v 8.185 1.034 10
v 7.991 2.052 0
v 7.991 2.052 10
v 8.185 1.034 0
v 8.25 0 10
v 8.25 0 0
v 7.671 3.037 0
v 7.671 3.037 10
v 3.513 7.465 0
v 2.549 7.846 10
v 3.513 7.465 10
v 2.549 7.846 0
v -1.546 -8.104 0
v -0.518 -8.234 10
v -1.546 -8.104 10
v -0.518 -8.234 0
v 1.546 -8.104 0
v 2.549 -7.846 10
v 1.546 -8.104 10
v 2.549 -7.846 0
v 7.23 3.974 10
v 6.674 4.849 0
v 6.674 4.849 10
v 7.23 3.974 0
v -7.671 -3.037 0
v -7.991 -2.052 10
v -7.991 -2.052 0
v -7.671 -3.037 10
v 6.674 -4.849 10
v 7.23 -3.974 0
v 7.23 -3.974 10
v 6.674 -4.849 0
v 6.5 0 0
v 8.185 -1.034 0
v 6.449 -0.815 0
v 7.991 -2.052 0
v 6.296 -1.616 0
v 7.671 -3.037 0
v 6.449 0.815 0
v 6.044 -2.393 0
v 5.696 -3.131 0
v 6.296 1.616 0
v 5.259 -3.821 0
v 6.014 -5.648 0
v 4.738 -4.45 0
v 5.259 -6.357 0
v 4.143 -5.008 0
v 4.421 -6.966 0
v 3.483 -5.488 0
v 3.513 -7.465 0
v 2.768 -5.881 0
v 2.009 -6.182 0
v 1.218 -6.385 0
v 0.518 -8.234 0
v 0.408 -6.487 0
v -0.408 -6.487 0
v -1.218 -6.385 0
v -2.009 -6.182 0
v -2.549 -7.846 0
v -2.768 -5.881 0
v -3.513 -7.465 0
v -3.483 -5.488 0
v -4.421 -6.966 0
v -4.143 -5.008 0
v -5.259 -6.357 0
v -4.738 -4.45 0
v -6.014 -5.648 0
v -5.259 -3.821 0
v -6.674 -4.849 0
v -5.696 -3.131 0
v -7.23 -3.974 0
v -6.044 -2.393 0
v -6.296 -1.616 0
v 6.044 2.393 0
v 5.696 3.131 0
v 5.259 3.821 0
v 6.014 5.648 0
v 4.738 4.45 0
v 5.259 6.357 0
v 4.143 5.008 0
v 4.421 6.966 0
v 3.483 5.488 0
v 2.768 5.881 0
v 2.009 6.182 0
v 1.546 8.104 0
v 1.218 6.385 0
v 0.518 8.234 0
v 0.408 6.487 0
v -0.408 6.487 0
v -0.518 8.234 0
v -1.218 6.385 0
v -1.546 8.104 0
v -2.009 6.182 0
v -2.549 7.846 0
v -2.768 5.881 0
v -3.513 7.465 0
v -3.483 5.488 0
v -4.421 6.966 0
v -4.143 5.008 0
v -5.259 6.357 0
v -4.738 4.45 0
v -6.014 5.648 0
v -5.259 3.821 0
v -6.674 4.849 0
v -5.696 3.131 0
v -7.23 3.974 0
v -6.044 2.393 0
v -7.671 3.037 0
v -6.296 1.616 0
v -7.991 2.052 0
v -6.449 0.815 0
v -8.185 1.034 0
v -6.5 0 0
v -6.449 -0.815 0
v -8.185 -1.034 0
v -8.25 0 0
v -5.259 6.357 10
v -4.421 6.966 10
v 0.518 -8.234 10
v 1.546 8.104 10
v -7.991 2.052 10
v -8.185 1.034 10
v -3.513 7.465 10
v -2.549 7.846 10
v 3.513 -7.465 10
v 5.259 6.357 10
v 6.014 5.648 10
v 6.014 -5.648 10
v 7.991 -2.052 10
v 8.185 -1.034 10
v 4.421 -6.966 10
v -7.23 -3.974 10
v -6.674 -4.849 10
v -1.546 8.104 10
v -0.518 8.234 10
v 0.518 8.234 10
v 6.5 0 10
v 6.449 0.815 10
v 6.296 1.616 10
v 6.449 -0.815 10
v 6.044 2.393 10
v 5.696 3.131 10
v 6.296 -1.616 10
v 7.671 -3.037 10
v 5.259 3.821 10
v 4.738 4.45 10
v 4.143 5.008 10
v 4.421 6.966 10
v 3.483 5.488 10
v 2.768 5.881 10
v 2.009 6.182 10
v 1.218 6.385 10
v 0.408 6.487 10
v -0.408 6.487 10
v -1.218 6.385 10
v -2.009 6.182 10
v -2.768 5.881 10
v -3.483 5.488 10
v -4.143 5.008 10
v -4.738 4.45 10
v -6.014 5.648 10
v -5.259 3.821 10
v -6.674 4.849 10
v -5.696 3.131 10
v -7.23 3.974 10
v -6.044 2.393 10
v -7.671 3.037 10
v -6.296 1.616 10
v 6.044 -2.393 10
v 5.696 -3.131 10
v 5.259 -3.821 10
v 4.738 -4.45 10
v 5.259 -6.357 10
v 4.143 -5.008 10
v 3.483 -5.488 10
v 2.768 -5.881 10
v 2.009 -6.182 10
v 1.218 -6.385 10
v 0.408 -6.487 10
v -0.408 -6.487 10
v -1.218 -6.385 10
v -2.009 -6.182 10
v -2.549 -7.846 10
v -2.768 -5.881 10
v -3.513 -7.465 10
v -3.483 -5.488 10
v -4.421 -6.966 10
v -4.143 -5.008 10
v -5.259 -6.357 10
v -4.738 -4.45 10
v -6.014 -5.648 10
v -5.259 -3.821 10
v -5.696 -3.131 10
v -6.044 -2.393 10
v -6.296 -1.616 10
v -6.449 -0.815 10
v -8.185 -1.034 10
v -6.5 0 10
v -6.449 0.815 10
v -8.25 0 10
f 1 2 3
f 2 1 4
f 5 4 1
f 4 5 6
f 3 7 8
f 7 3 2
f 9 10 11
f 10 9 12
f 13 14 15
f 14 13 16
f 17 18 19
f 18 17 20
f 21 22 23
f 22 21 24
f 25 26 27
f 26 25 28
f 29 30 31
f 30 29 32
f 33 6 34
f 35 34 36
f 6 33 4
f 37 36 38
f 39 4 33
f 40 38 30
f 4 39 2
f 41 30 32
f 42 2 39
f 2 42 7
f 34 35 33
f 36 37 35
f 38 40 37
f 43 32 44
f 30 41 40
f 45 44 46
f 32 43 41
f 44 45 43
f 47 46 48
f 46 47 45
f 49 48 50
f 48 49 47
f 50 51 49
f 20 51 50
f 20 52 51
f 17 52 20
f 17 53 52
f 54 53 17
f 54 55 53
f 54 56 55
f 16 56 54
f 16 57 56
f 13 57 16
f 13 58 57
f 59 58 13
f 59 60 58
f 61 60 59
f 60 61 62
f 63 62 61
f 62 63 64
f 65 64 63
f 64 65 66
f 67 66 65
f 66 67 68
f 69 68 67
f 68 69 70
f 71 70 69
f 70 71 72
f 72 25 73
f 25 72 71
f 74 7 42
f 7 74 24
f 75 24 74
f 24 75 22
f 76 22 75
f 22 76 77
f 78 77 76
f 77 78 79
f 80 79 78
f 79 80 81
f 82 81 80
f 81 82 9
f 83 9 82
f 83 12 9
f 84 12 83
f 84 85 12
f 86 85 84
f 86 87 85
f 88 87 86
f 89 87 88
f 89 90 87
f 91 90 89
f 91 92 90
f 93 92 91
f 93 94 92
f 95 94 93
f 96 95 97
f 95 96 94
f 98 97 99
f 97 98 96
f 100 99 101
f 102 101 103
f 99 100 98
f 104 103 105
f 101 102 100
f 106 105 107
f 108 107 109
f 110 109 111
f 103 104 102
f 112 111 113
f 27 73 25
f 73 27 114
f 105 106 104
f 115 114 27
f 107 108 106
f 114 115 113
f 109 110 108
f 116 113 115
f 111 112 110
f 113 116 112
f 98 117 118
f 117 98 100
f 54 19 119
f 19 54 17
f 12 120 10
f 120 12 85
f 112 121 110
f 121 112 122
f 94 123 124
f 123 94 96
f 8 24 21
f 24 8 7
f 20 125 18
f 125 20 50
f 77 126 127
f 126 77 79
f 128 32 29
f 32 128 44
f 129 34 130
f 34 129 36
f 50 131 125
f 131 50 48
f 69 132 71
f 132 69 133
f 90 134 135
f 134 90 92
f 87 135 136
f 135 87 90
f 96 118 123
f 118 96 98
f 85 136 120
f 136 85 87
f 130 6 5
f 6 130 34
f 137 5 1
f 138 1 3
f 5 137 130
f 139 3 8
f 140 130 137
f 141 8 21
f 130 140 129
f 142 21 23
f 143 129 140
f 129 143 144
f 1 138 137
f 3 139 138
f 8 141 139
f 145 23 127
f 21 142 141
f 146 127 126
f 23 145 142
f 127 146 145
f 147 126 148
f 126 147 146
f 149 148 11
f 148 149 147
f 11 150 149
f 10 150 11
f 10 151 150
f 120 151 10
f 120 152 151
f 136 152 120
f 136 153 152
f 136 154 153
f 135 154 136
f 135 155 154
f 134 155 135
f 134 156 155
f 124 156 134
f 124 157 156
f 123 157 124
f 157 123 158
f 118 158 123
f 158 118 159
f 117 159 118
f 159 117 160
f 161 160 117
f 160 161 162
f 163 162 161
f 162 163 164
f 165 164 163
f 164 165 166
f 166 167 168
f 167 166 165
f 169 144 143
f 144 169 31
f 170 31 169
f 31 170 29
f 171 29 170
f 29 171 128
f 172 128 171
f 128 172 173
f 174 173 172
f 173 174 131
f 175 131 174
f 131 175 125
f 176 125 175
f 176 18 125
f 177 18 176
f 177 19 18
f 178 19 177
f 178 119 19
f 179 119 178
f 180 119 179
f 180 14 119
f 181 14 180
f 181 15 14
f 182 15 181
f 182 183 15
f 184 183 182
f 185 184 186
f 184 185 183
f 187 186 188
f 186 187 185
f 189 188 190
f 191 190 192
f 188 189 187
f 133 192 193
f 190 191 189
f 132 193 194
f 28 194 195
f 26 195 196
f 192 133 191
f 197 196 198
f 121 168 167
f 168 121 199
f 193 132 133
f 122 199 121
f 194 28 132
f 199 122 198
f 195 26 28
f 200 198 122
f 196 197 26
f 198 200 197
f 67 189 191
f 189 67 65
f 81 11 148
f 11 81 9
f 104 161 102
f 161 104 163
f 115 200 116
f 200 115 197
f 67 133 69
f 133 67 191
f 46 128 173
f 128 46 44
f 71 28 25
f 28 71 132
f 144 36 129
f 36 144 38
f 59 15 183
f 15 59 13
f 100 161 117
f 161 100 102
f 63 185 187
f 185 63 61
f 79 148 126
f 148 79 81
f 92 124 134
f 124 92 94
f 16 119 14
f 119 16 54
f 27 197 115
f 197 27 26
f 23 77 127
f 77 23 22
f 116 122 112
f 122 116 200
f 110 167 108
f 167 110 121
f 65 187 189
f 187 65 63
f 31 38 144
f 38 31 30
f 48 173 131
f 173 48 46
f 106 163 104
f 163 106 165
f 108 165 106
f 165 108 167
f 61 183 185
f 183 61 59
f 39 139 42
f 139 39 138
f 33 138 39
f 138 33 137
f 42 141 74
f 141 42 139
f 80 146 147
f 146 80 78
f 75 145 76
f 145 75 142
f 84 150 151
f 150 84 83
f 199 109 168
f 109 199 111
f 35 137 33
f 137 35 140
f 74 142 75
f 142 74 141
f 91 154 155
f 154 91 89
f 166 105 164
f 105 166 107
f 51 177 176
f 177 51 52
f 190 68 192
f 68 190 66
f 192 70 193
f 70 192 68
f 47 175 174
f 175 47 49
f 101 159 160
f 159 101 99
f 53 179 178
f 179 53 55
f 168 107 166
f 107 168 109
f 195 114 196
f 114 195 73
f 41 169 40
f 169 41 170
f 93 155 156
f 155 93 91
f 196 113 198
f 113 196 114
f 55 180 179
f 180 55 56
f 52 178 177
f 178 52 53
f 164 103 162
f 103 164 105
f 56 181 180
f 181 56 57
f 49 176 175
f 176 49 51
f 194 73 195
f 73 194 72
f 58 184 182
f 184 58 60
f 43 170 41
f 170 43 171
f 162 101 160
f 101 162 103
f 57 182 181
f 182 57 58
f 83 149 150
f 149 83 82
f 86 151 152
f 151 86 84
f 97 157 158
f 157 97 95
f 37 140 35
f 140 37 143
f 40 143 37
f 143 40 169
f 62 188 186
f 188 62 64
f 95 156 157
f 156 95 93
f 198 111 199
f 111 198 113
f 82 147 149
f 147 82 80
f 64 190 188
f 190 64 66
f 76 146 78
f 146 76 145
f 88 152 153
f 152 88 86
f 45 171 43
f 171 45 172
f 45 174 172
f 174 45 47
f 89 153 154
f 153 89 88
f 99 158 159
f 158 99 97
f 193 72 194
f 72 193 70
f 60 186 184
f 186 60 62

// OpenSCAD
/*
 * Henry's razor base to safety razor adapter
 *
 * Project URL
 * https://github.com/avolkov/openscad-designs/
 *
 * Copyright 2021 Alex Volkov <alex@flamy.ca>
 * License: Attribution-ShareAlike 4.0 International (CC BY-SA)
 * https://creativecommons.org/licenses/by-sa/4.0/
 *
 * Version 1.0 2021-04-05 Initial publication
 */

$fn=50;
cyl_h=10;
difference(){
    cylinder(d=16.5, h=cyl_h);
    cylinder(d=13, h=cyl_h);
}
